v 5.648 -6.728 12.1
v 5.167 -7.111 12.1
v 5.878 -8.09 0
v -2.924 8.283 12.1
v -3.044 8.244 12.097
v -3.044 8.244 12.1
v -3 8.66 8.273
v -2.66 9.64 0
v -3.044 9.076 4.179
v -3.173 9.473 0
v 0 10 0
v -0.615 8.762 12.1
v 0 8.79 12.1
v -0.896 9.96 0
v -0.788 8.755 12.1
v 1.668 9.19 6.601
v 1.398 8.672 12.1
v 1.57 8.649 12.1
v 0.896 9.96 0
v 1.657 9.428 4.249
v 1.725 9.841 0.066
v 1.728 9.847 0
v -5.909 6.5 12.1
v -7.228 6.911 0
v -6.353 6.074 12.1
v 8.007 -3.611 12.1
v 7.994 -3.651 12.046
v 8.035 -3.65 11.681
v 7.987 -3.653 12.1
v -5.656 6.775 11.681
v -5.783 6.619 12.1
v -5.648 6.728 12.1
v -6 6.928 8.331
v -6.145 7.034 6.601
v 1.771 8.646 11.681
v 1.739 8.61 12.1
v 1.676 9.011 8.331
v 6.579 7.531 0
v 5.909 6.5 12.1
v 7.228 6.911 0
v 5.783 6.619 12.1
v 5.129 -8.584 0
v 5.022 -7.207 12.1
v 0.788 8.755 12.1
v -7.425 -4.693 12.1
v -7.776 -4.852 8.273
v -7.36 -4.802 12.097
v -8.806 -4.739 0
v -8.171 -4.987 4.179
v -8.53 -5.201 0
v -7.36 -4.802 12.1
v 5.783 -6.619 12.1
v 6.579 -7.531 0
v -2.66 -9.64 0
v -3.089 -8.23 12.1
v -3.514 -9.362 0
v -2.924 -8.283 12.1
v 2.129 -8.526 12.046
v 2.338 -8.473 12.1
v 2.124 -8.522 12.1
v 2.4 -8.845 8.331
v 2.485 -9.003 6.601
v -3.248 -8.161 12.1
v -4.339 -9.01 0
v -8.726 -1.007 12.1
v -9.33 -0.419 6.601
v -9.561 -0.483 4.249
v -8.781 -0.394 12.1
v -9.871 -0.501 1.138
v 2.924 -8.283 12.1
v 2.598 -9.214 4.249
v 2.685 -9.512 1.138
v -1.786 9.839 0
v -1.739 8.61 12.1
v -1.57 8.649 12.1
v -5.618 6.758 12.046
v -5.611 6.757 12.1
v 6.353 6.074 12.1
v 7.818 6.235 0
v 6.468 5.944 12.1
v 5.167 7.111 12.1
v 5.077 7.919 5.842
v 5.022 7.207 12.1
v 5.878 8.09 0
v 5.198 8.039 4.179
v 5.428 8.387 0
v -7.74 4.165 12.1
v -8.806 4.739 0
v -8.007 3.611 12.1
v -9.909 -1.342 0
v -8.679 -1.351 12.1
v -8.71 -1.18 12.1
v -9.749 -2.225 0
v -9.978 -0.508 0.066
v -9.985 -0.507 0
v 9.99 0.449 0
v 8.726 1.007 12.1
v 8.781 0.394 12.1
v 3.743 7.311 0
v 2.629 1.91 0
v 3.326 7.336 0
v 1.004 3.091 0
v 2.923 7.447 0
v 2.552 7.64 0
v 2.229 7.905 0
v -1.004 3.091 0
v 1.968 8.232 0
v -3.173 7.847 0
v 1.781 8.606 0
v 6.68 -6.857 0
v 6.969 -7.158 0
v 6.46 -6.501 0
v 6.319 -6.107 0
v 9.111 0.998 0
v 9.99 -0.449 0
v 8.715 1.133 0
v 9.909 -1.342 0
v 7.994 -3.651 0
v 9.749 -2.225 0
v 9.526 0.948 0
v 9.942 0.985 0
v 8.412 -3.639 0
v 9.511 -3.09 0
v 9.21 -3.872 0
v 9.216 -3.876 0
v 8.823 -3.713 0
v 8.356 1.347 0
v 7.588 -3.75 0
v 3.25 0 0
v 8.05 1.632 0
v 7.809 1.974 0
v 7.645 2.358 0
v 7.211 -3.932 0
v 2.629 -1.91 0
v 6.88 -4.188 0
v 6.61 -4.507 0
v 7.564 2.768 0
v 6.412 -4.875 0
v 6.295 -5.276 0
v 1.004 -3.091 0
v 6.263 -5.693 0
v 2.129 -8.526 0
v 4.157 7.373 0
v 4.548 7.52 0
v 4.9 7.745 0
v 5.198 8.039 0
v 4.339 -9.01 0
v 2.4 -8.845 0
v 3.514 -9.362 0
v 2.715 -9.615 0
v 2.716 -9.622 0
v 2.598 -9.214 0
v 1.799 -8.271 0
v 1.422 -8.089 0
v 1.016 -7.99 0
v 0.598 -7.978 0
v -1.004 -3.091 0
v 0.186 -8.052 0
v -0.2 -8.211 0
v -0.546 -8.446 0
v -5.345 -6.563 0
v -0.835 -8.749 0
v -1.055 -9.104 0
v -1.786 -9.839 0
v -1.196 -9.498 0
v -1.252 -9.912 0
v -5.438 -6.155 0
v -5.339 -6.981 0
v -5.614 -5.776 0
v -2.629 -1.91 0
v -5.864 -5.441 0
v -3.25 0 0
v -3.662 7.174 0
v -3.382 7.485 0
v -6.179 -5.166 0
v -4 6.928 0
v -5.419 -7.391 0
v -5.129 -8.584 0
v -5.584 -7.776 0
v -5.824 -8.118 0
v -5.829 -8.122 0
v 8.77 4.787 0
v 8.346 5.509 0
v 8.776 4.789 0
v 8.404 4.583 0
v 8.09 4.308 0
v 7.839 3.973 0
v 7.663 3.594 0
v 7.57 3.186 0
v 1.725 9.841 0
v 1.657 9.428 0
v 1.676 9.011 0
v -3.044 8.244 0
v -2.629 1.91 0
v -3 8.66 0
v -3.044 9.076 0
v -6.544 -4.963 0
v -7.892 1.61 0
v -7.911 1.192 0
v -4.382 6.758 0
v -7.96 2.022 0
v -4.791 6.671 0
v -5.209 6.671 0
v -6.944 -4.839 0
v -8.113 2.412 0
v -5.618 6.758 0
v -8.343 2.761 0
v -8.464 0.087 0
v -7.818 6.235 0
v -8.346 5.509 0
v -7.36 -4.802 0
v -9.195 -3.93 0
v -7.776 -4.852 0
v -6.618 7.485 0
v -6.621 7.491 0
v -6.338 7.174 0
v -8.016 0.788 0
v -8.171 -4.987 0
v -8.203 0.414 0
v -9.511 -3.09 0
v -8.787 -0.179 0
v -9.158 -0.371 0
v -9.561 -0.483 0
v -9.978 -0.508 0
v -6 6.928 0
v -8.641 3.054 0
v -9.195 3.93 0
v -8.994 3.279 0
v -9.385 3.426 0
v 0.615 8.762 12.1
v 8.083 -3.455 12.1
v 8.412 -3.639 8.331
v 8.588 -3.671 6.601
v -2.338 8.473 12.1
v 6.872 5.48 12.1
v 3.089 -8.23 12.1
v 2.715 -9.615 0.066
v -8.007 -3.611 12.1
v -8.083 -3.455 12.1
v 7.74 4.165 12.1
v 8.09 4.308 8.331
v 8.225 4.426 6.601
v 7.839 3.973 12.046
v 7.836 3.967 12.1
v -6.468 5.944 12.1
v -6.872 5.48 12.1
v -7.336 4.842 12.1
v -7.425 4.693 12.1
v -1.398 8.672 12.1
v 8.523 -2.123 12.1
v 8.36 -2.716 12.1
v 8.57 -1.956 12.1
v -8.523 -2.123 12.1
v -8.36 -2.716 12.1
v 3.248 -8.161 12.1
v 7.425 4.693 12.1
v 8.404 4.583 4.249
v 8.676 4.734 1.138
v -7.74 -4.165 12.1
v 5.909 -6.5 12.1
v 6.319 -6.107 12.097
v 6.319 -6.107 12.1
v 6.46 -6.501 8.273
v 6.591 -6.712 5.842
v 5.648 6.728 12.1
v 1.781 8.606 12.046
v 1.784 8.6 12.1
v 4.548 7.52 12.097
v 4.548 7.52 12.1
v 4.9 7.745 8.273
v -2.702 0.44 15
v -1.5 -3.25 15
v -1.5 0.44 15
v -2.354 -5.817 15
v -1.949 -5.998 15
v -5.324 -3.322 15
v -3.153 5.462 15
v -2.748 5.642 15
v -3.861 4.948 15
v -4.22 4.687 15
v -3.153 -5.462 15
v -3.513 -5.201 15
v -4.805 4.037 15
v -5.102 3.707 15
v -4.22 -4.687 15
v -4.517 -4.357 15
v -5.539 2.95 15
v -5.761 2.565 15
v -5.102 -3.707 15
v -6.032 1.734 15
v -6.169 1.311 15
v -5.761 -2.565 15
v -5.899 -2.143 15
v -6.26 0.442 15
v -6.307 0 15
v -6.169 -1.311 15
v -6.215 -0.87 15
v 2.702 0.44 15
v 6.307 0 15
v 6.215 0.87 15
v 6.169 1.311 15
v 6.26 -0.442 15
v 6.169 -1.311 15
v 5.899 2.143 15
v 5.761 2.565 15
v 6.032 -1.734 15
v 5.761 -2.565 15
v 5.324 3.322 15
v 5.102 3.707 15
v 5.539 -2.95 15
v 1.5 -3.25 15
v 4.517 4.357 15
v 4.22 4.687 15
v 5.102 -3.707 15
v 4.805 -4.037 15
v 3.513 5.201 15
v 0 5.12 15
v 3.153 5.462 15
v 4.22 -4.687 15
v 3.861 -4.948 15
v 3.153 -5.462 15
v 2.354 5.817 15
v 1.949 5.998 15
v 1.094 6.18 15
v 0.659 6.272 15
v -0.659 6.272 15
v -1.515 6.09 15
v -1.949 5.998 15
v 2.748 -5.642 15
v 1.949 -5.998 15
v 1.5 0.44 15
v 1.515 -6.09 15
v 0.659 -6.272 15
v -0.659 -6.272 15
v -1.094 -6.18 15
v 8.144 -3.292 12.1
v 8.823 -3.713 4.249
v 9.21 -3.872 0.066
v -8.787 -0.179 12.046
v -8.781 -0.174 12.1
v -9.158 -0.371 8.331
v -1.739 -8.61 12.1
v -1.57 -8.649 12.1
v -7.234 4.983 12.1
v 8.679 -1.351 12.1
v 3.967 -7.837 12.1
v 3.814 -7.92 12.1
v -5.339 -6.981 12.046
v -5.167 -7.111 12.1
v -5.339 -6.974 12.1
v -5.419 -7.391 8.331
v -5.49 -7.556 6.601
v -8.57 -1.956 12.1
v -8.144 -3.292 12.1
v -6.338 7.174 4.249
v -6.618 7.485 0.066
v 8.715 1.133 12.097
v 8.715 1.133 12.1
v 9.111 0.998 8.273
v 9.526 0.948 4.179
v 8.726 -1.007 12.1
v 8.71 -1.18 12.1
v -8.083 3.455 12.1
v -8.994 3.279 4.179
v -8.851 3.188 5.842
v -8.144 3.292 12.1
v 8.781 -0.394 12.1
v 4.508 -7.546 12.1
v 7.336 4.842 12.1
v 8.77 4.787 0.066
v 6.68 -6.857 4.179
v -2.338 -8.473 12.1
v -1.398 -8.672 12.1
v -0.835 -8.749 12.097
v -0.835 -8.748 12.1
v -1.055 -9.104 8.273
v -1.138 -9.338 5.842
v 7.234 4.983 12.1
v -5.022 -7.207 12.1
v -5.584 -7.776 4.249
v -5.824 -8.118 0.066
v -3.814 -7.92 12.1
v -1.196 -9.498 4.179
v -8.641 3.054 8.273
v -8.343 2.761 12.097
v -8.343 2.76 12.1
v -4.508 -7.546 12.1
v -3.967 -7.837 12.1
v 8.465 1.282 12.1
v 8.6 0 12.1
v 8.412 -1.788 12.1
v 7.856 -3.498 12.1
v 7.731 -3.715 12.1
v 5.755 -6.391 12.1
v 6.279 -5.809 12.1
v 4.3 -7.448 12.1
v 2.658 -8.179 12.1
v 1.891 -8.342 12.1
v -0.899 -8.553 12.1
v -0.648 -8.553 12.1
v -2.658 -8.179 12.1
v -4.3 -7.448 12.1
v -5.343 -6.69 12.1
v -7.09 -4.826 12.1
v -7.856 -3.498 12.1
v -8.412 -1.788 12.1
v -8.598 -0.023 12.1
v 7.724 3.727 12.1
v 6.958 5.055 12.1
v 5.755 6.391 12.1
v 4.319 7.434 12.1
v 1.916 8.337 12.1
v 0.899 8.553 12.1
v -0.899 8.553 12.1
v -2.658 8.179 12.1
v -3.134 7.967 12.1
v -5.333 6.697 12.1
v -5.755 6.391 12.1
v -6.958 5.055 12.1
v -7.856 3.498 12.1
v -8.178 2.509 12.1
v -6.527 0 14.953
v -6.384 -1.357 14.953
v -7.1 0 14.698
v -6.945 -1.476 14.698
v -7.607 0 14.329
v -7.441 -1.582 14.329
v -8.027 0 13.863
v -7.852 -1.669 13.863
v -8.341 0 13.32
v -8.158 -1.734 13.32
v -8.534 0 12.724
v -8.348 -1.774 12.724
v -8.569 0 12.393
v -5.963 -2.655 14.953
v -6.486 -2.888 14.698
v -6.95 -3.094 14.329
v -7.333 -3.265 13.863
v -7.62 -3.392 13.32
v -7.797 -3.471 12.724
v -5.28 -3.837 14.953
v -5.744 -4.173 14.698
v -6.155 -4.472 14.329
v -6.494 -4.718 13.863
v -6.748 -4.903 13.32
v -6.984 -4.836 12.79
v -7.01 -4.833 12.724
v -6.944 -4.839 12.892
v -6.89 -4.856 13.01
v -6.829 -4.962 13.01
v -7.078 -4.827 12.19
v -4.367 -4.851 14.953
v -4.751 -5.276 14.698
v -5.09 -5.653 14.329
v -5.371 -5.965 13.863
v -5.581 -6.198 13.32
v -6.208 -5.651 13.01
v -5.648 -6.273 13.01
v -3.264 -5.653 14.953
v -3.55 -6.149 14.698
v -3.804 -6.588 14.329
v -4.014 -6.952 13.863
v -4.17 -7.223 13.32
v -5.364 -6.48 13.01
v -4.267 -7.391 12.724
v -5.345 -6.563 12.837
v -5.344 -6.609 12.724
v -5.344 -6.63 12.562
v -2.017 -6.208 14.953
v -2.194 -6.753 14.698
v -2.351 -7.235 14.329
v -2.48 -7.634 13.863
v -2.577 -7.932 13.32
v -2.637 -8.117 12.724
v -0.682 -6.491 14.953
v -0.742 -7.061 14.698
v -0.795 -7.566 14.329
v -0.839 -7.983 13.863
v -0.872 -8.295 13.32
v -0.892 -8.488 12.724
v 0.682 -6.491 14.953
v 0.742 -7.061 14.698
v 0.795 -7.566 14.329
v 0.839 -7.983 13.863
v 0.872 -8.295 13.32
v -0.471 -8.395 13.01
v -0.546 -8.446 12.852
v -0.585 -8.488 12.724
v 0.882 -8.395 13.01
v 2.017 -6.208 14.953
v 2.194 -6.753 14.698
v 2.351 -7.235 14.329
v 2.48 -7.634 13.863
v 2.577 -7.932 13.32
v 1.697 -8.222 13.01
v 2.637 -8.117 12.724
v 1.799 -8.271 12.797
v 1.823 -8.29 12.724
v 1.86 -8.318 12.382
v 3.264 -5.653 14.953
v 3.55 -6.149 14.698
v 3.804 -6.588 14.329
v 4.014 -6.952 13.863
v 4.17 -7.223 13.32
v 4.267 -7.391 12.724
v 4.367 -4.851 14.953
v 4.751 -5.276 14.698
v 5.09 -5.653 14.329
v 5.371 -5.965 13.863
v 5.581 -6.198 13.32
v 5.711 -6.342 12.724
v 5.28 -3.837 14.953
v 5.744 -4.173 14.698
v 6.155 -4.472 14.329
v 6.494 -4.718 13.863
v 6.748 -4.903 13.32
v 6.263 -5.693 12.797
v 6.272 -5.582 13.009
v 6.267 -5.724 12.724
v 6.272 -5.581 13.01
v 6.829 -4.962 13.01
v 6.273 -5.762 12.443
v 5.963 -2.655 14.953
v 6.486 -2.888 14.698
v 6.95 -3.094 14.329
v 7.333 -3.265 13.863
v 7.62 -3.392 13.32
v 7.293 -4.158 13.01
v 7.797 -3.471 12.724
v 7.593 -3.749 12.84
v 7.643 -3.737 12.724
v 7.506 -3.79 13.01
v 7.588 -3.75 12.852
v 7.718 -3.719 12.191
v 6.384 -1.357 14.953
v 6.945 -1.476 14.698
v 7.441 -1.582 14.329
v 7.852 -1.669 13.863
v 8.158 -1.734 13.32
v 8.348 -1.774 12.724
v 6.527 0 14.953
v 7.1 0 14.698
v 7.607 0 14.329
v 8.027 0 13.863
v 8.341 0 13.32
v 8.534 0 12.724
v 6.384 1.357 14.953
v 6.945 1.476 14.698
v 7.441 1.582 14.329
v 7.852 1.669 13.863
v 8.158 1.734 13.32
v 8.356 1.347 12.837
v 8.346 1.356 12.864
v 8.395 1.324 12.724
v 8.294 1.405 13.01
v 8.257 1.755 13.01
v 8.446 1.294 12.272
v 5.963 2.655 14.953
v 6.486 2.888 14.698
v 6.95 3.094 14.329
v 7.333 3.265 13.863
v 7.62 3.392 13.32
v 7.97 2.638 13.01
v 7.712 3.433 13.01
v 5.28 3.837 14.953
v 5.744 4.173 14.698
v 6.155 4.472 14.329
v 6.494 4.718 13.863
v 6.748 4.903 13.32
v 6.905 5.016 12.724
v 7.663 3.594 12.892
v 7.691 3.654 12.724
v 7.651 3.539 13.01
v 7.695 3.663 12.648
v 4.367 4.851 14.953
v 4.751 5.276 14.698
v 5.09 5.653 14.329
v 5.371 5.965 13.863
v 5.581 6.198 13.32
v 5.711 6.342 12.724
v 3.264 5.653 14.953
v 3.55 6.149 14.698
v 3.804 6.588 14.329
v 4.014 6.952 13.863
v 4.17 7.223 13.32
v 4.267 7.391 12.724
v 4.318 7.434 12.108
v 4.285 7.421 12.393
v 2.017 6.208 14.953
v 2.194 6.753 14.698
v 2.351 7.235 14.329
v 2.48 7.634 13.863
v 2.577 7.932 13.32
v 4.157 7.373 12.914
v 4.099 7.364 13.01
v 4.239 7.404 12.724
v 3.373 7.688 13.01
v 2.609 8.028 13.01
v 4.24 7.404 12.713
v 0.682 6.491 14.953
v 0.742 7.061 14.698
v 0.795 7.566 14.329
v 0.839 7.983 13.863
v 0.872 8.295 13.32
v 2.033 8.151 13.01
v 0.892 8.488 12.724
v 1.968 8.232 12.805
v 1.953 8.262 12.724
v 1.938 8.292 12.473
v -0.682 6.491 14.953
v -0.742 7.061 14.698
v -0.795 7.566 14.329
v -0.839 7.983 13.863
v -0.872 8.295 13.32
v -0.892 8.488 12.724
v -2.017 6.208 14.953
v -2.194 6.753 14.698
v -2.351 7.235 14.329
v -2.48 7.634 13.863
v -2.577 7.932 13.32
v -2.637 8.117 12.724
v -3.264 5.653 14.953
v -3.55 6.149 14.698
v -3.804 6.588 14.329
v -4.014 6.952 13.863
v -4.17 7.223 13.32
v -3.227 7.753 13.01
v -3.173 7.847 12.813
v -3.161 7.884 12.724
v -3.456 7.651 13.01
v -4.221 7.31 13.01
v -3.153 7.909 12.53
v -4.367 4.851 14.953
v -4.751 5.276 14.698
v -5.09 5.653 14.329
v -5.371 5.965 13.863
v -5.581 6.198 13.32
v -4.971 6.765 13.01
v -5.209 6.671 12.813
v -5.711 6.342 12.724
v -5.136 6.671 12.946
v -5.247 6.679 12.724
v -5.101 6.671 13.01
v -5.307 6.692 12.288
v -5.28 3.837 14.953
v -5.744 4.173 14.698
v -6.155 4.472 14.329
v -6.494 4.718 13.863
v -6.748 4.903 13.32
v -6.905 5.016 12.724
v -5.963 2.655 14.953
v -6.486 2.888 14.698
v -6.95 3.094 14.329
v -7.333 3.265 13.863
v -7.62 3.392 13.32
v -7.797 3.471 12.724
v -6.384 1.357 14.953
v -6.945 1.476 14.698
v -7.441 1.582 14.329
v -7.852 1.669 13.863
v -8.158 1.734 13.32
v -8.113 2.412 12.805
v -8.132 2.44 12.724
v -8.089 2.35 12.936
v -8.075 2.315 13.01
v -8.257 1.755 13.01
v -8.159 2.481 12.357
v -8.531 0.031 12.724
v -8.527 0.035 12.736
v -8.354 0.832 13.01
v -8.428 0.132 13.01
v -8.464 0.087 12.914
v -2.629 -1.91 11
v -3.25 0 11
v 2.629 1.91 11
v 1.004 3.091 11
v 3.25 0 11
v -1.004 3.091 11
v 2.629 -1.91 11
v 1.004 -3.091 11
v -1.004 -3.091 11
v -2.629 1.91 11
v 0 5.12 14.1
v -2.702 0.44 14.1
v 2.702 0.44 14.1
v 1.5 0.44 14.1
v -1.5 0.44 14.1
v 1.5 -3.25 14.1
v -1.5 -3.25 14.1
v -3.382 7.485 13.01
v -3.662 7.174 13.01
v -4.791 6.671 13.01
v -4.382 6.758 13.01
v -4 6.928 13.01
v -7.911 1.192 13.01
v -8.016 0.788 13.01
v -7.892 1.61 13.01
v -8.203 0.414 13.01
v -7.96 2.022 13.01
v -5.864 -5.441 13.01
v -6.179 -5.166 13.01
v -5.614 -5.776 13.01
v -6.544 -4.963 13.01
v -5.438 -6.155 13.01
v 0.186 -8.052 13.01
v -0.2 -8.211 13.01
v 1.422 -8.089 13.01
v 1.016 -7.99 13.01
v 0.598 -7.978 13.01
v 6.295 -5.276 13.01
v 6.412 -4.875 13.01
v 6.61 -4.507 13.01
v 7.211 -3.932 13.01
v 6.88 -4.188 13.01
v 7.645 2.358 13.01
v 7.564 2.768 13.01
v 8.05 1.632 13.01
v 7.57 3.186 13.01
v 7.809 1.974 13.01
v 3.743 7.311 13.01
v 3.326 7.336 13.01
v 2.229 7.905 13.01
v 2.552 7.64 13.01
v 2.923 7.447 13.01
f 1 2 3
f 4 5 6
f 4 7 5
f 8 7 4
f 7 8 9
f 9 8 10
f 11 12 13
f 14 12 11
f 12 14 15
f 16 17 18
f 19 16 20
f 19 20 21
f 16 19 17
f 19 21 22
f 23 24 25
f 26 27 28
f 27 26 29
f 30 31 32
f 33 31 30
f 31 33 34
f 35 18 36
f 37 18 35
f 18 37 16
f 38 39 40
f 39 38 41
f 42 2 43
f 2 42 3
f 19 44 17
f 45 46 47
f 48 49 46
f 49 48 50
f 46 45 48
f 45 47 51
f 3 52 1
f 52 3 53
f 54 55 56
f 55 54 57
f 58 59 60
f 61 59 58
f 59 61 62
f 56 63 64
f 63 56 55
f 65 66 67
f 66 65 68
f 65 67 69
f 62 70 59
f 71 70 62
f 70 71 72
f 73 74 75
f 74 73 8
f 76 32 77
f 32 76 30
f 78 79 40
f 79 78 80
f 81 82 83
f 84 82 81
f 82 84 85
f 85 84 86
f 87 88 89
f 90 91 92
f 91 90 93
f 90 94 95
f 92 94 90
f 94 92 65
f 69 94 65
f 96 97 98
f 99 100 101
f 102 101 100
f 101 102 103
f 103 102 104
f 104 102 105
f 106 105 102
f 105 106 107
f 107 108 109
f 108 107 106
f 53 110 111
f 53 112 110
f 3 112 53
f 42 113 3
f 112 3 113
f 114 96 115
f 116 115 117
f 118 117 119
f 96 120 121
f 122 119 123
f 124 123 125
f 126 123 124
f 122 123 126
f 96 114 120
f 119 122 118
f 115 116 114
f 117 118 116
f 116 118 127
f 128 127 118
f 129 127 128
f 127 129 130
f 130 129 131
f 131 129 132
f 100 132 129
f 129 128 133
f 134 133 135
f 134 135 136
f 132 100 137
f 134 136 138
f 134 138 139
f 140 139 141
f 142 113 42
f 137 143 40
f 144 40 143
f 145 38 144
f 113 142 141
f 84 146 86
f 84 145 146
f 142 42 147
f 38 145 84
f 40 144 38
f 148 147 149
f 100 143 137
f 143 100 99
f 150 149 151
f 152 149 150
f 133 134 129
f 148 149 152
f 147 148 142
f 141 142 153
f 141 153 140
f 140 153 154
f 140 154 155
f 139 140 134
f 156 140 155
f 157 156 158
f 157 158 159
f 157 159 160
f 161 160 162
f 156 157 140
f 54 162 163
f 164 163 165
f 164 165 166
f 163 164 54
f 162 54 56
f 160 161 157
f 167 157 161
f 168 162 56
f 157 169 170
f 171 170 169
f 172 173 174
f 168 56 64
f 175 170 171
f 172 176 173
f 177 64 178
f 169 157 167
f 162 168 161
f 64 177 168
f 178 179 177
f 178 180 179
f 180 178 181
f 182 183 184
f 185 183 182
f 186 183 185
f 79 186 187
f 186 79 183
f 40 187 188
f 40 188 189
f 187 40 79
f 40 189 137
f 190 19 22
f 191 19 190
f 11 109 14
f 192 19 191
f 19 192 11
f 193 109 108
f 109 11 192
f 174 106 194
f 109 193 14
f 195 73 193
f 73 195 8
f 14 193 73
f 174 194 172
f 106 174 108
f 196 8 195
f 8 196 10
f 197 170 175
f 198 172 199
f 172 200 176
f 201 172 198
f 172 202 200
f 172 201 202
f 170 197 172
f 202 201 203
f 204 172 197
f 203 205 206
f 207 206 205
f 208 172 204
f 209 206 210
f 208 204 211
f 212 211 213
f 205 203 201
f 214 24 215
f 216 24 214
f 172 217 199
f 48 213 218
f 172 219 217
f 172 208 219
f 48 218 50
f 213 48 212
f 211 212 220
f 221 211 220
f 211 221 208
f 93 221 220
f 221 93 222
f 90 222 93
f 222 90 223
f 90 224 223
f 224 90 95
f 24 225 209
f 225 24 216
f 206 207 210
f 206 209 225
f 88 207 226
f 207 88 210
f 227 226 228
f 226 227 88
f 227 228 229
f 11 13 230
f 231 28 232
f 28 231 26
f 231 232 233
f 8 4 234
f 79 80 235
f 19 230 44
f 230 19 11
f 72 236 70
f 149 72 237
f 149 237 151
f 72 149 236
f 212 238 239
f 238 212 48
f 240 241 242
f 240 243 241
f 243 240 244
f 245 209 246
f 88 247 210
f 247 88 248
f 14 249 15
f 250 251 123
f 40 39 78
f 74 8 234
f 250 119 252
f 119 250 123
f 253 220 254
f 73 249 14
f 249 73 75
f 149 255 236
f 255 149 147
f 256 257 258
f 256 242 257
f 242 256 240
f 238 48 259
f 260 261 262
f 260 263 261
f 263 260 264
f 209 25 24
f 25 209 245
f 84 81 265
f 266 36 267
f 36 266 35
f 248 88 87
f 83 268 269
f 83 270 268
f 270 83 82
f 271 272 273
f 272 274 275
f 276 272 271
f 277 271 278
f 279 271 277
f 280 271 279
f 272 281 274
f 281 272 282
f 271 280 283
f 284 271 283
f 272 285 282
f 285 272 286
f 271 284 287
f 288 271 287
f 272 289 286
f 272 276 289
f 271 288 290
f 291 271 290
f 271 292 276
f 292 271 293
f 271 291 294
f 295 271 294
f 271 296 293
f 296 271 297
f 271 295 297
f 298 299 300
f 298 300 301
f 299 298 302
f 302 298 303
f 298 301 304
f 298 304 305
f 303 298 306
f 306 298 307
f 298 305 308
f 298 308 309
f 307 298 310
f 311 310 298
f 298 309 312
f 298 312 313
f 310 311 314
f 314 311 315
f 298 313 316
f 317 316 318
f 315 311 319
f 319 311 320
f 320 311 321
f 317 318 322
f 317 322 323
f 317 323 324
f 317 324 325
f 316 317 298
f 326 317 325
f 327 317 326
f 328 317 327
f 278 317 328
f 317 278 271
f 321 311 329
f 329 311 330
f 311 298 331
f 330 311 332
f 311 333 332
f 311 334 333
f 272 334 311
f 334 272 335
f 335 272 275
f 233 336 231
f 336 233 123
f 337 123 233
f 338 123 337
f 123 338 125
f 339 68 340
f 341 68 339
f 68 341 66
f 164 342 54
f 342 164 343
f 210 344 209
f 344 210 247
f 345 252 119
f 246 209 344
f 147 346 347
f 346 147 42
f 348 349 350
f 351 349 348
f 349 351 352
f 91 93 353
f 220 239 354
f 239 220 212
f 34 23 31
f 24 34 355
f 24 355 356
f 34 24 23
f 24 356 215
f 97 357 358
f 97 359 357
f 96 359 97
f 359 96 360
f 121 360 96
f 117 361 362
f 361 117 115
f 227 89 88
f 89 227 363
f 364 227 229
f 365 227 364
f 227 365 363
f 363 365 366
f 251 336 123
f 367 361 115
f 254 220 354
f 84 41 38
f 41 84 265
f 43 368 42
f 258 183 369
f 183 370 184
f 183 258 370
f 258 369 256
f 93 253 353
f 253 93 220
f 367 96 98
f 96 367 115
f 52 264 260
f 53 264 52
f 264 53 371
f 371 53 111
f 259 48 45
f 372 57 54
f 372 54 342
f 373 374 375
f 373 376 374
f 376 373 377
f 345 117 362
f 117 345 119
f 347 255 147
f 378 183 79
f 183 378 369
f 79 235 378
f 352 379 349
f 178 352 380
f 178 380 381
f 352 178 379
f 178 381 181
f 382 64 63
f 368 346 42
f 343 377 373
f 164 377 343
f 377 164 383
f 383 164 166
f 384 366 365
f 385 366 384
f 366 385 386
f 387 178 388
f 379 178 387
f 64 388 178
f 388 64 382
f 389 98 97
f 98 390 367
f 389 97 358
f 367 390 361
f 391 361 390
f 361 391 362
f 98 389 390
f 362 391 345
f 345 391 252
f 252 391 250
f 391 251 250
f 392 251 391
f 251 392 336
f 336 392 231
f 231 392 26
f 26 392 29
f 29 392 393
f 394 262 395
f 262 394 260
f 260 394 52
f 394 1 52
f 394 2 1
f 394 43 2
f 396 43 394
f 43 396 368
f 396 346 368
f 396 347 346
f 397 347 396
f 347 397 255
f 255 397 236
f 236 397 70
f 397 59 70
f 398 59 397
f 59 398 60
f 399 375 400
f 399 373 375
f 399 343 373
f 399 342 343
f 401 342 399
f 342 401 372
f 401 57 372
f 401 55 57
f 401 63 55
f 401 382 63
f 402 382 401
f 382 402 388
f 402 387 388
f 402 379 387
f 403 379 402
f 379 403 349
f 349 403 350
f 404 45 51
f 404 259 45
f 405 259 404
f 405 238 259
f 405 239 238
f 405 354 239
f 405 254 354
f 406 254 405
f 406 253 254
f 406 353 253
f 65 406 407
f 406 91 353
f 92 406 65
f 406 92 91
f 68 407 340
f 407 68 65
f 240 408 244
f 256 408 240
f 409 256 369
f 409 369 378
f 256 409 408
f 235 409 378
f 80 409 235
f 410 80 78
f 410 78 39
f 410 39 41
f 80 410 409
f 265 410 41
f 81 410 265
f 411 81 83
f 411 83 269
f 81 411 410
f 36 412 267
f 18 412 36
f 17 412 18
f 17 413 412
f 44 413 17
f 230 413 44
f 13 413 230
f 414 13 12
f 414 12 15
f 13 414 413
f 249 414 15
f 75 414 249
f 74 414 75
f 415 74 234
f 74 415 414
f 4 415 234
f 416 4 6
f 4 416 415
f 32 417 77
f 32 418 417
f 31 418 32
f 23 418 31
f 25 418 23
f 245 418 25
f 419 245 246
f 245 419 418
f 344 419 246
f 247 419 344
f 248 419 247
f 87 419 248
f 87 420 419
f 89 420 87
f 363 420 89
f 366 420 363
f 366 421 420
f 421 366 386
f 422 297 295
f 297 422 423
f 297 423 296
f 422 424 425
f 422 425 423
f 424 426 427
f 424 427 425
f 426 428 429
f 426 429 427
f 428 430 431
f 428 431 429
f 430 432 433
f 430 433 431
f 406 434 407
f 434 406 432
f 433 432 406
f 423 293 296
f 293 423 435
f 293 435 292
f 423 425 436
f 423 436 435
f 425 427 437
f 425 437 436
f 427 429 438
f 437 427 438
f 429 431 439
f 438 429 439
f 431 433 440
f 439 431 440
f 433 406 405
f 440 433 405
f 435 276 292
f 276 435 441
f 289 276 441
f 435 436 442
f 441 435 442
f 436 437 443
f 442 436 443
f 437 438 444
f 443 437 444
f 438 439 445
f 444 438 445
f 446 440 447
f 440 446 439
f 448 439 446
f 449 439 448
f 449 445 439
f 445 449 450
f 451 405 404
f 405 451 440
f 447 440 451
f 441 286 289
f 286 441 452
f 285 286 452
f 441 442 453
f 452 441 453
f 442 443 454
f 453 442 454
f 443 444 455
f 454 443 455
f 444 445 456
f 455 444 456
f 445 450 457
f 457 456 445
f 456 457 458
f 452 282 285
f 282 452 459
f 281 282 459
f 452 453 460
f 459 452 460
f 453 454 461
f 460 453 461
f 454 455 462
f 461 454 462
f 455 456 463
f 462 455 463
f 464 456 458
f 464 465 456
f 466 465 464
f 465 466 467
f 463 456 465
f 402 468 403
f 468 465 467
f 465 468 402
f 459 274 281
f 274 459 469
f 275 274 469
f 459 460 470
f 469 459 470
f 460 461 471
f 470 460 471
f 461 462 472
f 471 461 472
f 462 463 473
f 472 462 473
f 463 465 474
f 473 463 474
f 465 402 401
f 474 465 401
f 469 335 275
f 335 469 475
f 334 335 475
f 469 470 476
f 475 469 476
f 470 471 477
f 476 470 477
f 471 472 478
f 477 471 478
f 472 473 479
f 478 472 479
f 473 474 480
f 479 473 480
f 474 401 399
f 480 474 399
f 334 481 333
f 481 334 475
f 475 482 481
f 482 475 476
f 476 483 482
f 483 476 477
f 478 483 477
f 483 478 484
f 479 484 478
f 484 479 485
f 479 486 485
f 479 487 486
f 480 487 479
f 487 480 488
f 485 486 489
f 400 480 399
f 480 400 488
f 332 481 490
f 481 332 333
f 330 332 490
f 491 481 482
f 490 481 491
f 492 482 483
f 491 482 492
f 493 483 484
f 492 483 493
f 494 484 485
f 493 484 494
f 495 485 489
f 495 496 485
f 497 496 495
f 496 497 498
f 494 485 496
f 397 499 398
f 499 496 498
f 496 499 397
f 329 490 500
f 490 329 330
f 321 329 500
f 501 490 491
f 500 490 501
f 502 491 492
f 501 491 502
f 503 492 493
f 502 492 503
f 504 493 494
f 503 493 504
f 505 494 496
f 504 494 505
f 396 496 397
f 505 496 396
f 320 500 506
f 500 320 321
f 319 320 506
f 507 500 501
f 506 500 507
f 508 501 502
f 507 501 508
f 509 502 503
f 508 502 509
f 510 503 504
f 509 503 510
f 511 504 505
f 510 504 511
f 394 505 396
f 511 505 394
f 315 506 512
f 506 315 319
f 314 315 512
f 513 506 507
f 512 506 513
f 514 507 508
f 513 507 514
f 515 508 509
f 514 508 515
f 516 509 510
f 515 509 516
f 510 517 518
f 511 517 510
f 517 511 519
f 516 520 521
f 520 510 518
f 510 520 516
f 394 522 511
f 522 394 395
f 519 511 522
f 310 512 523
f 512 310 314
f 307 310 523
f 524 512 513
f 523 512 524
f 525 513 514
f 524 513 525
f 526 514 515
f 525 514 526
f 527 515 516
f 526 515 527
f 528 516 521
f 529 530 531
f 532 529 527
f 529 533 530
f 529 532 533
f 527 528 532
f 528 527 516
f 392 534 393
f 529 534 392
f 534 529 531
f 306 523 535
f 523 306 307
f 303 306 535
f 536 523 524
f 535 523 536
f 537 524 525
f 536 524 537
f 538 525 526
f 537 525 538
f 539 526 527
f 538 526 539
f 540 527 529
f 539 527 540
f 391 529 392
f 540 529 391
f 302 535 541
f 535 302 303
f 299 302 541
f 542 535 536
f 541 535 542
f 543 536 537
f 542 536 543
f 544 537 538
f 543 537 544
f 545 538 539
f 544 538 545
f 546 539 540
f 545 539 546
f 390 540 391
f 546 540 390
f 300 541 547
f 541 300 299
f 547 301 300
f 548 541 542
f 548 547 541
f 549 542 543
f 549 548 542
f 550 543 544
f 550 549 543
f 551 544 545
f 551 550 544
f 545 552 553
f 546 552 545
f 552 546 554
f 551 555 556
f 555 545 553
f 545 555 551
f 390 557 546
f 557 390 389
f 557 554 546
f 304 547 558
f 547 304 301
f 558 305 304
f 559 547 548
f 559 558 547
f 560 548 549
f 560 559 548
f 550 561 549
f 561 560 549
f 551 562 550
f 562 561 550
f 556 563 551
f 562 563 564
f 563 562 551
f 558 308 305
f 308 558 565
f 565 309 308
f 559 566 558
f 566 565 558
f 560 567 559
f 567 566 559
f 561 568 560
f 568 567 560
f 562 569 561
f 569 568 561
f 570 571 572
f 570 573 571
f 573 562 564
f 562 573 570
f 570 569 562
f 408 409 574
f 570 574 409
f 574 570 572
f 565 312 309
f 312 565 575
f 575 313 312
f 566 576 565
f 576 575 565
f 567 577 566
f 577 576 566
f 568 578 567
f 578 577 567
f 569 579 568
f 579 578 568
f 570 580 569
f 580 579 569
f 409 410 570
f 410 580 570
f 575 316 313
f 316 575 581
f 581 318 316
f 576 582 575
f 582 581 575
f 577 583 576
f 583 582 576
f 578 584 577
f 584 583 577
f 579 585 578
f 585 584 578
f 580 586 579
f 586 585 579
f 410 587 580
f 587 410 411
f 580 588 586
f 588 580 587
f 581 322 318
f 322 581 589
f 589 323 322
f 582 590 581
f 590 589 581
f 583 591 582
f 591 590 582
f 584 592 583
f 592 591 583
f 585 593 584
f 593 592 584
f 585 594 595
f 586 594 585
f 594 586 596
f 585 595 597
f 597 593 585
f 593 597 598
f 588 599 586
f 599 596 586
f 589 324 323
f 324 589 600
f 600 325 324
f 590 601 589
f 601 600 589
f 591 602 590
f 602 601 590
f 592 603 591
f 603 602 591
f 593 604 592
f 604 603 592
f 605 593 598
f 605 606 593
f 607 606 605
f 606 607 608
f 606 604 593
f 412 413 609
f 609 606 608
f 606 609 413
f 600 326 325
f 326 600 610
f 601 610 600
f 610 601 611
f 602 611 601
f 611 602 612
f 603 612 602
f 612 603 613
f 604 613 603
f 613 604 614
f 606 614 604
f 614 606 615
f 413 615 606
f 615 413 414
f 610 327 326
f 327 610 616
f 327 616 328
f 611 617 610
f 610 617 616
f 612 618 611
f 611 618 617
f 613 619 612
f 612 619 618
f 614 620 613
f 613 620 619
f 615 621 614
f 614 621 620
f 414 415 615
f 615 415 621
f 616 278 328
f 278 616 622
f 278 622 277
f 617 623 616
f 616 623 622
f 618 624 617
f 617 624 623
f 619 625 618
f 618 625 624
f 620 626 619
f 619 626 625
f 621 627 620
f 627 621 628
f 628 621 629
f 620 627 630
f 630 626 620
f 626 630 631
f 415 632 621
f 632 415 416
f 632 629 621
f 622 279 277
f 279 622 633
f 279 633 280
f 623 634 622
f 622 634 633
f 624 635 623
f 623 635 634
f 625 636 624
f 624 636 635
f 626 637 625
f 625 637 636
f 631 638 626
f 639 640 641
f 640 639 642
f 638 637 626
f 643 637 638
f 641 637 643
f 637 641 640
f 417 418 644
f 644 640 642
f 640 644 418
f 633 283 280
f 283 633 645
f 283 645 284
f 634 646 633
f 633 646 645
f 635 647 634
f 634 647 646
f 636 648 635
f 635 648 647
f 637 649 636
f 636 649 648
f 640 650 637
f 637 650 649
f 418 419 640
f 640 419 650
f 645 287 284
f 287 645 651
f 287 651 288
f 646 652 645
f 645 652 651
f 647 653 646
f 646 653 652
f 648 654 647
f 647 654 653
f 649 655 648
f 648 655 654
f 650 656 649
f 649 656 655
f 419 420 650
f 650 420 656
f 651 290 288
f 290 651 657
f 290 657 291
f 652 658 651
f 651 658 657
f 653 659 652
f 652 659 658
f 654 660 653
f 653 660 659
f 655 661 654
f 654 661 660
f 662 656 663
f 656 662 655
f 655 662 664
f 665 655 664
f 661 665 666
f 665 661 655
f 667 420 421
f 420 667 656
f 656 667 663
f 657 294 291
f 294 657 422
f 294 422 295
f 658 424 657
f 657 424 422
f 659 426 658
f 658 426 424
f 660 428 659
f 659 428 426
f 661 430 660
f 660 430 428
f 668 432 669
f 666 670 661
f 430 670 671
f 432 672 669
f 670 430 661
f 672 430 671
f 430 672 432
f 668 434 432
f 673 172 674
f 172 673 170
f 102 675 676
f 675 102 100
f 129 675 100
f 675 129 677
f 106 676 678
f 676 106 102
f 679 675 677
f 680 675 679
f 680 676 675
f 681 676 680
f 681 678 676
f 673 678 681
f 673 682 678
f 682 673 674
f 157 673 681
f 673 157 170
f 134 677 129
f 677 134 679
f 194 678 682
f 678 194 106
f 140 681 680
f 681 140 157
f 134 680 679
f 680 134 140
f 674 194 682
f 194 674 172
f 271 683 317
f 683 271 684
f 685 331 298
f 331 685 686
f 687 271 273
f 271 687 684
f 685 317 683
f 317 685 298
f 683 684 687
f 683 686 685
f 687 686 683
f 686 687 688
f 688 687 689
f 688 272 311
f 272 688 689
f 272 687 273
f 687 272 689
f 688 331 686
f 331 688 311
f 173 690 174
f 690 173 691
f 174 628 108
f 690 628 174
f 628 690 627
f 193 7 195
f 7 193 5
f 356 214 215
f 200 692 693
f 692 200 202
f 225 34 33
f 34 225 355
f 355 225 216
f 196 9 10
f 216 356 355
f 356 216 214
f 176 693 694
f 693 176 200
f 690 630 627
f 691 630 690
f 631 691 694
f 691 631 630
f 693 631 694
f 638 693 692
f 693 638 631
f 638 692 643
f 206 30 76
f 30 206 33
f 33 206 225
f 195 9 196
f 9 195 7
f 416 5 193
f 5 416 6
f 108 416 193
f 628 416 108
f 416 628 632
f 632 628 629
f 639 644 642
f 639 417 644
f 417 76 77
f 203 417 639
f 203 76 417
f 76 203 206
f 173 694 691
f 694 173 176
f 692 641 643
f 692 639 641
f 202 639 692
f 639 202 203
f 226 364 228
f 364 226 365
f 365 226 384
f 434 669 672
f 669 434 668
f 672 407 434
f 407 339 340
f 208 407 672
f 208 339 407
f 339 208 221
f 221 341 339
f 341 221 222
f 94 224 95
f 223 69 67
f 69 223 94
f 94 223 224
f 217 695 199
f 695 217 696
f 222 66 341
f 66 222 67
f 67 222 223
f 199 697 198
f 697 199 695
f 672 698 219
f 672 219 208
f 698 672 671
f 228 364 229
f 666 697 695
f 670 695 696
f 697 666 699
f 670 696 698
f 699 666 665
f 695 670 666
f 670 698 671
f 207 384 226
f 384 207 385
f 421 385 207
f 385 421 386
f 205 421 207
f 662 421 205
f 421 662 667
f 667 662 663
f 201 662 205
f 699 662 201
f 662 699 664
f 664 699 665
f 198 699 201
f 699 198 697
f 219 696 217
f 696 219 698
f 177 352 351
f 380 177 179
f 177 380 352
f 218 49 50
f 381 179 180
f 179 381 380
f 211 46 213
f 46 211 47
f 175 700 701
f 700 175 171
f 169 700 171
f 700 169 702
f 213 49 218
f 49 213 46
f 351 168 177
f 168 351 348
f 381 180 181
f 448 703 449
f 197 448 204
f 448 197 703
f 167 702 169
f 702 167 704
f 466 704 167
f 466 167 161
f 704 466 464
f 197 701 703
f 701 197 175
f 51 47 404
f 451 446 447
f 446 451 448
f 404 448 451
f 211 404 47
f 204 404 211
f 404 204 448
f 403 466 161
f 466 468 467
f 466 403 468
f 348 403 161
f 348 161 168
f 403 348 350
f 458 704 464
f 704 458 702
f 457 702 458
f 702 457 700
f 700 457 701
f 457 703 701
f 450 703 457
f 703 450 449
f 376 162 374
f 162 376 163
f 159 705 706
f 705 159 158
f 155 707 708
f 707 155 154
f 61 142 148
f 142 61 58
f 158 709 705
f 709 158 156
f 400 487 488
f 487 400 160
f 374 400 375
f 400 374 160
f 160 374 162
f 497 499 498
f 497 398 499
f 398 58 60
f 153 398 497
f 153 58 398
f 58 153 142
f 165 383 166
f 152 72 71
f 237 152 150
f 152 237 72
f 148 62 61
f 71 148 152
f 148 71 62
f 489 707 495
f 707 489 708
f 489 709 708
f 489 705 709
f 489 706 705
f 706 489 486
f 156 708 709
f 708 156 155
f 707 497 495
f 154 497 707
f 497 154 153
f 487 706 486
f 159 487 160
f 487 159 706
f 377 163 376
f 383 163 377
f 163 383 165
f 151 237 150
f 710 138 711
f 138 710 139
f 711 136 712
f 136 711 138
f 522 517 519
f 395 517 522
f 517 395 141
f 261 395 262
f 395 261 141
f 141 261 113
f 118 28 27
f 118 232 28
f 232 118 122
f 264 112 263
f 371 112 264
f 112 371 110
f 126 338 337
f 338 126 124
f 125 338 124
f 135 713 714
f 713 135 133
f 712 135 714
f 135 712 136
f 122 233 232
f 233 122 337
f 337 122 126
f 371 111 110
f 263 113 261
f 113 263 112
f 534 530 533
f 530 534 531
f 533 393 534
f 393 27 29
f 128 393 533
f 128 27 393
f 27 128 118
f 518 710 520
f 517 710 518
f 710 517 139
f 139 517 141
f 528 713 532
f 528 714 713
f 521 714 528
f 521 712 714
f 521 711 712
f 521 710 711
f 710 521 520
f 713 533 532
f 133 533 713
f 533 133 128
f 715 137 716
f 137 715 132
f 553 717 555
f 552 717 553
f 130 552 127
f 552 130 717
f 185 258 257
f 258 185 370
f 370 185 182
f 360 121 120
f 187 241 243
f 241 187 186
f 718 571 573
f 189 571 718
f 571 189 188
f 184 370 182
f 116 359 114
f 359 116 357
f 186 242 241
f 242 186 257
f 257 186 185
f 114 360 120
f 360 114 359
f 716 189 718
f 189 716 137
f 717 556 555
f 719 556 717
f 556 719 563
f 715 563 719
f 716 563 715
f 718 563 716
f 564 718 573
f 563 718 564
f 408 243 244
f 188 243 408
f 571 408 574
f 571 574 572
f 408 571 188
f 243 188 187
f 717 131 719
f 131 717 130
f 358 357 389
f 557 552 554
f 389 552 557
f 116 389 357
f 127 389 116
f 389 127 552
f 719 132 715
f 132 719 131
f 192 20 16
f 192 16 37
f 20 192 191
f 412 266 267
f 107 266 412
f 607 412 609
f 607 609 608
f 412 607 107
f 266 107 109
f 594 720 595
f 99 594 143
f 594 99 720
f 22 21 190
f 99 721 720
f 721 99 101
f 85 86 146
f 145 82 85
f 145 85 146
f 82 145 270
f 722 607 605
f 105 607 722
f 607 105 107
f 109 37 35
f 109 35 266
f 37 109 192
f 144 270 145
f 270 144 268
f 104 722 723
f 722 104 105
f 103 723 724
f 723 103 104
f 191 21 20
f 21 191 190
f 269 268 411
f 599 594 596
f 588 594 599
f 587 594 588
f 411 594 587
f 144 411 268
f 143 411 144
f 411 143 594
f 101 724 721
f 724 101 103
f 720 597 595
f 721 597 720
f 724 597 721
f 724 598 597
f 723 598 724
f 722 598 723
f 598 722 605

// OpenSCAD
/*
Knob Factory

Version 1.2

© 2012 Steve Cooley    ( http://sc-fa.com , http://beatseqr.com , http://hapticsynapses.com )
© 2021 Matthias Ansorg ( https://ma.juii.net )

Description
===========
A parametric OpenSCAD design that allows to generate all kinds of knobs. Examples: small knobs for potentiometer inputs; 
knobs for turning the extruder or an axis of the 3D printer manually; water spout knobs etc.. It's a good idea to print 
only the lower 5 mm at first and then abort the print, to test if the hole diamater fits well on the shaft or if the measures 
have to be tuned further.

Licence
=======
Knob Factory is licensed under a Creative Commons Attribution 3.0 Unported License according to 
the licence note found at https://www.thingiverse.com/thing:20513 . Based on a work at sc-fa.com. 
Permissions beyond the scope of this license may be available at http://sc-fa.com/blog/contact .
You can view the terms of the license here: http://creativecommons.org/licenses/by/3.0/

Version History
===============
1.2  2021-01-03  Option to generate knobs with stems. Major refactorings. Republished as remix on Thingiverse.
1.1  2012-04-12  Fixed the arrow indicator code to be more robust and easier to adjust parameters for.
1.0  2012-03-??  Initial release at https://www.thingiverse.com/thing:20513 .

Open Tasks
==========
* @todo Adjust $fn based on the quality parameter so that if ≥30 faces on the circumference are specified, the shape 
    will be made "round", using the current quality setting.
* @todo Change the assembly order so that the external indicator is not cut by the cone indents even if they cut to the very bottom.
* @todo Add a horizontal cylinder around the setscrew hole, providing sufficient thread length where thin stems walls don't.
* @todo Add support for melt-in nuts that can be used for the setscrew hole, as seen at https://www.thingiverse.com/thing:3475324
* @todo Provide an option to chamfer rather than round along the top, to allow printing without support when flipped over.
* @todo Refactor the top_rounding() module.
* @todo Make the top_rounding() operation faster. Everything else is already fast enough to navigate fluently in preview mode.
* @todo Add a printer_hole_scale parameter (or similar) to scale holes so that printing them offsets any printer calibration 
    error. This keeps local calibration issues separate form the shafthole_radius parameter, which is good for sharing configurations.
* @todo Add support for more shaft shapes (rectangular, gear shaped etc.).
* @todo Support knurling of the knob circumference.
* @todo Add support for cutouts that leave spokes between the hub and circumference.
* @todo Some more "@todo" items as available inside the source code.
* @todo Add a mode where the sphere and cone indents can be rendered, to get an idea how to adapt them if they do not cut anything.
*/


// (1) CUSTOMIZER PARAMETERS
// ======================================================================

/* [Basic Parameters] */
// ---------------------

// Degree of detail in the output to allow faster previews. Influences segments for a full circle. NOT IMPLEMENTED YET.
quality = "final rendering"; // ["fast preview", "preview", "rendering", "final rendering"]

// Top radius of the main (cylindrical or conical) shape. [mm]
knob_radius_top = 8.5;

// Bottom radius of the main (cylindrical or conical) shape. [mm]
knob_radius_bottom = 10;

// Height of the main (cylindrical or conical) knob shape, without the stem. [mm]
knob_height = 15;

// Number of faces on the circumference of the knob, as on a regular polygon. ≥30 means "round, using current quality setting".
knob_faces = 70;

// Radius (at the widest point) of the shaft to which the knob is mounted. [mm]
shafthole_radius = 3.25;

// Depth of the hole for the shaft. If the knob is stopped by something mounted to the shaft, you can be generous with this measure, allowing it to catch debris from mounting without stopping the knob before its final position. [mm]
shafthole_height = 12;

// Number of faces on the cylindrical edge of the shaft hole, allowing to create holes for square, hexagonal etc. shafts. ≥30 means "round, using current quality setting".
shafthole_faces = 10;

// How much to cut off to create a D-shaped shafthole cross-section. 0 to keep it round. [mm]
shafthole_cutoff_arc_height = 0;


/* [Stem (optional)] */
// --------------------

// Whether to place the knob on a stem to form a mushroom shape.
enable_stem = false;

// Radius of the stem. [mm]
stem_radius = 5;

// Height of the stem. [mm]
stem_height = 6;

// Number of faces on the cylindrical part of the stem. ≥30 means "round, using current quality setting".
stem_faces = 30;

// Height of the section where the stem radius adapts, as part of the stem height. [mm]
stem_transition_height = 5;

// Radius to which the stem radius adapts at the top of the stem. [mm]
stem_transition_radius = 5;


/* [Stem _cutoff (optional)] */
// --------------------

// Whether to make a cut off for stem 
enable_stem_cutoff = false;

// Radius of the stem. [mm]
stem_cutoff_radius = 6.5;

// Height of the stem. [mm]
stem_cutoff_height = 7;

// Number of faces on the cylindrical part of the stem. ≥30 means "round, using current quality setting".
stem_cutoff_faces = 30;

// Height of the section where the stem radius adapts, as part of the stem height. [mm]
stem_cutoff_transition_height = 5;

// Radius to which the stem radius adapts at the top of the stem. [mm]
stem_cutoff_transition_radius = 5;


/* [Setscrew Hole (optional)] */
// -------------------------

// Create a hole for a set screw, as required by some potentiometer or motor shafts to have their knobs affixed.
enable_setscrew_hole = false;

// Radius of the set screw hole. [mm]
setscrew_hole_radius = 1.01;

// Height of the set screw hole's center over the base of the knob. [mm]
setscrew_hole_height = 4;

// Number of faces on the cylindrical edge of the set screw hole. ≥30 means "round, using current quality setting".
setscrew_hole_faces = 20;


/* [Top Rounding (optional)] */
// ---------------------------------

// Enable rounding of the top edge. (Other "top rounding *" parameters are only relevant if checked.)
enable_top_rounding = true;

// Radius to use for rounding teh top edge. [mm]
top_rounding_radius = 3;

// Cylinder faces to use for the cylinder having the rounded top edge. ≥30 means "round, using current quality setting".
top_rounding_faces = 30;


/* [Engraved Indicator (optional)] */
// -------------------------------

// Whether to create an engraved indicator arrow on the top surface, or not.
enable_engraved_indicator = true;

// Scale factor for the overall arrow size.
engraved_indicator_scale = 1;

// Scale factor for the arrow's head size.
engraved_indicator_head_scale = 1.3;

// Scale factor for the arrow's shaft size.
engraved_indicator_shaft_scale = 1;

// How much to move the arrow into its pointing direction. Positive or negative. [mm]
engraved_indicator_move_forward = 2;

// Engraving depth. [mm]
engraved_indicator_depth = 3;


/* [External Indicator (optional)] */
// ------------------------------

// Whether to create a dial, protruding from the bottom of the knob's circumference.
enable_external_indicator = false;

// Height of the dialhand, from the bottom of the knob body. [mm]
external_indicator_height = 4;

// Length of the dialhand protruding over the bottom radius of the knob main shape. [mm]
external_indicator_length = 2;


/* [Sphere Indents (optional)] */
// --------------------------------------

// Whether to create cutouts around the top edge or circumference using spheres (or rather regular polyhedra) arranged in a circle.
enable_sphere_indents = false;

// Number of indenting spheres.
sphere_indents_count = 13;

// Radius of the indenting spheres. [mm]
sphere_indents_radius = 4;

// Number of faces around the outer circumference of the indenting spheres. ≥30 means "round, using current quality setting".
sphere_indents_faces = 20;

// Distance of the indenting spheres' centers from the centerline of the knob. [mm]
sphere_indents_center_distance = 16;

// Maximum depth cut by the indenting spheres, measured from the top surface of the knob. [mm]
sphere_indents_cutdepth = 2;

// Rotation offset of all spheres. Allows to align the indentations with the indicator, setscrew or outer faces. [degrees]
sphere_indents_offset_angle = 35;


/* [Cone Indents (optional)] */
// ------------------------------------

// Whether to create cutouts around the top edge or circumference using cones or cylinders arranged in a circle. When using many narrow cylinders you can create a serrating effect for better grip on the circumference surface.
enable_cone_indents = true;

// Number of indenting cones.
cone_indents_count = 7;

// Number of faces around the outer circumference of the indenting cones. ≥30 means "round, using current quality setting".
cone_indents_faces = 30;

// Height of the indenting cones. [mm]
cone_indents_height = 13;

// Top radius of the indenting cones. [mm]
cone_indents_top_radius = 2;

// Bottom radius of the indenting cones. [mm]
cone_indents_bottom_radius = 2;

// Distance of the indenting cones' centerlines from the centerline of the knob. [mm]
cone_indents_center_distance = 10;

// Maximum depth cut by the indenting cones, measured from the top surface of the knob. [mm]
cone_indents_cutdepth = 15;

// Rotation offset of all cones. Allows to align the indentations with the indicator, setscrew or outer faces. [degrees]
cone_indents_offset_angle = 30;


// (2) FIXED AND DERIVED MEASURES
// ======================================================================

// Prevent anything following from showing up as Customizer parameters.
/* [Hidden] */

// Small amount of overlap for unions and differences, to prevent z-fighting.
nothing = 0.01;

// Degrees per fragment of a circle. Used only where users want round outlines by specifying ≥30 faces.
$fa =   
    (quality == "final rendering") ? 1 :
    (quality == "rendering") ? 3 : 
    (quality == "preview") ? 6 :
    (quality == "fast preview") ? 12 : 12; // The OpenSCAD default.
      
// Minimum size of circle fragments in mm.
$fs = 
    (quality == "final rendering") ? 0.1 :
    (quality == "rendering") ? 0.25 : 
    (quality == "preview") ? 0.5 :
    (quality == "fast preview") ? 2 : 2; // The OpenSCAD default.


// (3) MAIN MODULE
// ======================================================================

knob(); // Entry point of the program.


module knob() {
	difference() {
		difference() { 
            difference() {
				difference() {
					union() {
						translate([0, 0, enable_stem ? stem_height : 0]) {
                            difference() {
                                knob_base();
                                if (enable_top_rounding) top_rounding();
                            }
                            if (enable_external_indicator) external_indicator();
                        }
                        if (enable_stem) stem();
					}
					shafthole();
                    if (enable_stem_cutoff) stem_cutoff();
				}
				if (enable_setscrew_hole) setscrew_hole();
			}
			if (enable_engraved_indicator) engraved_indicator();
			if (enable_sphere_indents) sphere_indents();
            if (enable_cone_indents) cone_indents();
		}
	}
}


// (4) SUBMODULES
// ======================================================================

module knob_base() {
    // Align a face with the setscrew hole for aesthetic reasons, providing an arc above the setscrew hole in case of a round 
    // stem base and polygonal widening part of the stem. In OpenSCAD, polygons ("cylinders") are created so that a corner 
    // is placed on the +x axis. For uneven corner numbers, naturally a face is then centered around the -x axis. By rotating +90°, 
    // we move that face to be centered around the -y axis, where the setscrew hole has to be placed because it is the "back".
    rotate([0, 0, 90])
        // Knob base shape without any modifications or additions.
        cylinder(r1 = knob_radius_bottom, r2 = knob_radius_top, h = knob_height, $fn = knob_faces);
}

// @todo Calculate the convexity values based on the number of sphere and cone indents. Because a higher-than-necessary value 
//   hurts preview mode performance.
module top_rounding() {
    // Thanks to http://www.iheartrobotics.com/ for the articles that helped implement this.
    
    ct = -0.1;                          // circle translate? not sure.
    circle_radius = knob_radius_top;  	// just match the top edge radius
    circle_height = 1; 					// actually.. I don't know what this does.
    pad = 0.2;							// Padding to maintain manifold
    
    render(convexity = 5)
        translate([0, 0, knob_height])
            rotate([180, 0, 0])
                difference() {
                    rotate_extrude(convexity = 5, $fn = top_rounding_faces)
                        translate([circle_radius - ct - top_rounding_radius + pad, ct - pad, 0])
                            square(top_rounding_radius + pad, top_rounding_radius + pad);

                    rotate_extrude(convexity = 5, $fn = top_rounding_faces)
                        translate([circle_radius - ct - top_rounding_radius, ct + top_rounding_radius, 0])
                            circle(r = top_rounding_radius, $fn = top_rounding_faces);
                }
}


module stem() {
    // Straight basic stem.
    cylinder(h = stem_height + nothing, r = stem_radius, $fn = stem_faces);
    
    // Widening part at the top.
    rotate([0, 0, 90]) // To align a face with the setscrew hole; see knob_base().
        translate([0, 0, stem_height - stem_transition_height])
            cylinder(h = stem_transition_height, r1 = stem_radius, r2 = stem_transition_radius, $fn = knob_faces);
}

module stem_cutoff() {
    // cut off at the base
    cylinder(h = stem_cutoff_height + nothing, r = stem_cutoff_radius, $fn = stem_cutoff_faces);
    
    // Widening part at the top.
    //rotate([0, 0, 90]) // To align a face with the setscrew hole; see knob_base().
        translate([0, 0, stem_cutoff_height - stem_cutoff_transition_height])
            cylinder(h = stem_cutoff_transition_height, r1 = stem_cutoff_radius, r2 = stem_cutoff_transition_radius, $fn = knob_faces);
}



module shafthole() {
    difference() {
        // Create a round shafthole base shape.
        translate([0, 0, -1])
            cylinder(r = shafthole_radius, h = shafthole_height, $fn = shafthole_faces);
        
        // Adapt to a D-shaped shafthole if desired.
        if(shafthole_cutoff_arc_height != 0) {
            cutoff_size = [
                2 * shafthole_radius + 2 * nothing,
                shafthole_cutoff_arc_height + 2 * nothing,
                shafthole_height + 2 * nothing
            ];
            translate([-nothing, shafthole_cutoff_arc_height/2 - shafthole_radius - nothing, shafthole_height / 2]) 
                cube(cutoff_size, center = true);
        }
    }
}


module setscrew_hole() {
    hole_depth = max(knob_radius_top, knob_radius_bottom, stem_radius) + nothing;
    
    translate([0, -hole_depth / 2, setscrew_hole_height])
        rotate([90, 0, 0])
            cylinder(r = setscrew_hole_radius, h = hole_depth, center = true, $fn = setscrew_hole_faces);
}


// @todo Refactor the scaling algorithm and parameters to be more understandable. Default scale should be 1.
// @todo Fix that engraved_indicator_depth has not yet the desired effect because it is scaled with the rest of the arrow.
module engraved_indicator() {
    translate([0, engraved_indicator_move_forward, knob_height + (enable_stem ? stem_height : 0)])
        rotate([90, 0, 45])
            scale([engraved_indicator_scale * 0.3, engraved_indicator_scale * 0.3, engraved_indicator_scale * 0.3])
    
                union() {
                    rotate([90, 45, 0])
                        scale([engraved_indicator_head_scale, engraved_indicator_head_scale, 1])
                            // Arrowhead triangle as a cylinder with 3 faces.
                            cylinder(r = 8, h = engraved_indicator_depth * 2, $fn = 3, center = true);
                    rotate([90, 45, 0])
                        translate([-10, 0, 0])
                            scale([engraved_indicator_shaft_scale, engraved_indicator_shaft_scale, 1])
                                cube(size = [15, 10, engraved_indicator_depth * 2], center = true);
                }
}


module external_indicator() {
    // The diagonal of the square used as indicator is sqrt(2*knob_radius_bottom²). First we move it back from that 
    // most outward position to point at the center, then to point at the circumference of the knob, then to point out as specified.
    translate([0, -sqrt(2 * knob_radius_bottom * knob_radius_bottom) + knob_radius_bottom + external_indicator_length, 0])
        rotate([0, 0, 45])
            cube([knob_radius_bottom, knob_radius_bottom, external_indicator_height], center = false);
}


module sphere_indents() {
    z_position = sphere_indents_radius + (enable_stem ? stem_height : 0) + knob_height - sphere_indents_cutdepth;
    
    for (z = [0 : sphere_indents_count]) {
        // 90° base rotation angle to align the spheres with corners of the base shape. See knob_base().
        rotate([0, 0, 90 + sphere_indents_offset_angle + ((360 / sphere_indents_count) * z)])
            translate([sphere_indents_center_distance, 0, z_position])
                sphere(r = sphere_indents_radius, $fn = sphere_indents_faces); 
    }
}


module cone_indents() {
    height = cone_indents_height + 2 * nothing;
    z_position = height / 2 + (enable_stem ? stem_height : 0) + knob_height - cone_indents_cutdepth;
    
    for (z = [0 : cone_indents_count]) {
        // 90° base rotation angle to align the cones with corners of the base shape. See knob_base().
        rotate([0, 0, 90 + cone_indents_offset_angle + ((360 / cone_indents_count) * z)])
            translate([cone_indents_center_distance, 0, z_position - nothing])
                cylinder(
                    r1 = cone_indents_bottom_radius,
                    r2 = cone_indents_top_radius,
                    h = height,
                    center = true,
                    $fn = cone_indents_faces
                );
    }
}
